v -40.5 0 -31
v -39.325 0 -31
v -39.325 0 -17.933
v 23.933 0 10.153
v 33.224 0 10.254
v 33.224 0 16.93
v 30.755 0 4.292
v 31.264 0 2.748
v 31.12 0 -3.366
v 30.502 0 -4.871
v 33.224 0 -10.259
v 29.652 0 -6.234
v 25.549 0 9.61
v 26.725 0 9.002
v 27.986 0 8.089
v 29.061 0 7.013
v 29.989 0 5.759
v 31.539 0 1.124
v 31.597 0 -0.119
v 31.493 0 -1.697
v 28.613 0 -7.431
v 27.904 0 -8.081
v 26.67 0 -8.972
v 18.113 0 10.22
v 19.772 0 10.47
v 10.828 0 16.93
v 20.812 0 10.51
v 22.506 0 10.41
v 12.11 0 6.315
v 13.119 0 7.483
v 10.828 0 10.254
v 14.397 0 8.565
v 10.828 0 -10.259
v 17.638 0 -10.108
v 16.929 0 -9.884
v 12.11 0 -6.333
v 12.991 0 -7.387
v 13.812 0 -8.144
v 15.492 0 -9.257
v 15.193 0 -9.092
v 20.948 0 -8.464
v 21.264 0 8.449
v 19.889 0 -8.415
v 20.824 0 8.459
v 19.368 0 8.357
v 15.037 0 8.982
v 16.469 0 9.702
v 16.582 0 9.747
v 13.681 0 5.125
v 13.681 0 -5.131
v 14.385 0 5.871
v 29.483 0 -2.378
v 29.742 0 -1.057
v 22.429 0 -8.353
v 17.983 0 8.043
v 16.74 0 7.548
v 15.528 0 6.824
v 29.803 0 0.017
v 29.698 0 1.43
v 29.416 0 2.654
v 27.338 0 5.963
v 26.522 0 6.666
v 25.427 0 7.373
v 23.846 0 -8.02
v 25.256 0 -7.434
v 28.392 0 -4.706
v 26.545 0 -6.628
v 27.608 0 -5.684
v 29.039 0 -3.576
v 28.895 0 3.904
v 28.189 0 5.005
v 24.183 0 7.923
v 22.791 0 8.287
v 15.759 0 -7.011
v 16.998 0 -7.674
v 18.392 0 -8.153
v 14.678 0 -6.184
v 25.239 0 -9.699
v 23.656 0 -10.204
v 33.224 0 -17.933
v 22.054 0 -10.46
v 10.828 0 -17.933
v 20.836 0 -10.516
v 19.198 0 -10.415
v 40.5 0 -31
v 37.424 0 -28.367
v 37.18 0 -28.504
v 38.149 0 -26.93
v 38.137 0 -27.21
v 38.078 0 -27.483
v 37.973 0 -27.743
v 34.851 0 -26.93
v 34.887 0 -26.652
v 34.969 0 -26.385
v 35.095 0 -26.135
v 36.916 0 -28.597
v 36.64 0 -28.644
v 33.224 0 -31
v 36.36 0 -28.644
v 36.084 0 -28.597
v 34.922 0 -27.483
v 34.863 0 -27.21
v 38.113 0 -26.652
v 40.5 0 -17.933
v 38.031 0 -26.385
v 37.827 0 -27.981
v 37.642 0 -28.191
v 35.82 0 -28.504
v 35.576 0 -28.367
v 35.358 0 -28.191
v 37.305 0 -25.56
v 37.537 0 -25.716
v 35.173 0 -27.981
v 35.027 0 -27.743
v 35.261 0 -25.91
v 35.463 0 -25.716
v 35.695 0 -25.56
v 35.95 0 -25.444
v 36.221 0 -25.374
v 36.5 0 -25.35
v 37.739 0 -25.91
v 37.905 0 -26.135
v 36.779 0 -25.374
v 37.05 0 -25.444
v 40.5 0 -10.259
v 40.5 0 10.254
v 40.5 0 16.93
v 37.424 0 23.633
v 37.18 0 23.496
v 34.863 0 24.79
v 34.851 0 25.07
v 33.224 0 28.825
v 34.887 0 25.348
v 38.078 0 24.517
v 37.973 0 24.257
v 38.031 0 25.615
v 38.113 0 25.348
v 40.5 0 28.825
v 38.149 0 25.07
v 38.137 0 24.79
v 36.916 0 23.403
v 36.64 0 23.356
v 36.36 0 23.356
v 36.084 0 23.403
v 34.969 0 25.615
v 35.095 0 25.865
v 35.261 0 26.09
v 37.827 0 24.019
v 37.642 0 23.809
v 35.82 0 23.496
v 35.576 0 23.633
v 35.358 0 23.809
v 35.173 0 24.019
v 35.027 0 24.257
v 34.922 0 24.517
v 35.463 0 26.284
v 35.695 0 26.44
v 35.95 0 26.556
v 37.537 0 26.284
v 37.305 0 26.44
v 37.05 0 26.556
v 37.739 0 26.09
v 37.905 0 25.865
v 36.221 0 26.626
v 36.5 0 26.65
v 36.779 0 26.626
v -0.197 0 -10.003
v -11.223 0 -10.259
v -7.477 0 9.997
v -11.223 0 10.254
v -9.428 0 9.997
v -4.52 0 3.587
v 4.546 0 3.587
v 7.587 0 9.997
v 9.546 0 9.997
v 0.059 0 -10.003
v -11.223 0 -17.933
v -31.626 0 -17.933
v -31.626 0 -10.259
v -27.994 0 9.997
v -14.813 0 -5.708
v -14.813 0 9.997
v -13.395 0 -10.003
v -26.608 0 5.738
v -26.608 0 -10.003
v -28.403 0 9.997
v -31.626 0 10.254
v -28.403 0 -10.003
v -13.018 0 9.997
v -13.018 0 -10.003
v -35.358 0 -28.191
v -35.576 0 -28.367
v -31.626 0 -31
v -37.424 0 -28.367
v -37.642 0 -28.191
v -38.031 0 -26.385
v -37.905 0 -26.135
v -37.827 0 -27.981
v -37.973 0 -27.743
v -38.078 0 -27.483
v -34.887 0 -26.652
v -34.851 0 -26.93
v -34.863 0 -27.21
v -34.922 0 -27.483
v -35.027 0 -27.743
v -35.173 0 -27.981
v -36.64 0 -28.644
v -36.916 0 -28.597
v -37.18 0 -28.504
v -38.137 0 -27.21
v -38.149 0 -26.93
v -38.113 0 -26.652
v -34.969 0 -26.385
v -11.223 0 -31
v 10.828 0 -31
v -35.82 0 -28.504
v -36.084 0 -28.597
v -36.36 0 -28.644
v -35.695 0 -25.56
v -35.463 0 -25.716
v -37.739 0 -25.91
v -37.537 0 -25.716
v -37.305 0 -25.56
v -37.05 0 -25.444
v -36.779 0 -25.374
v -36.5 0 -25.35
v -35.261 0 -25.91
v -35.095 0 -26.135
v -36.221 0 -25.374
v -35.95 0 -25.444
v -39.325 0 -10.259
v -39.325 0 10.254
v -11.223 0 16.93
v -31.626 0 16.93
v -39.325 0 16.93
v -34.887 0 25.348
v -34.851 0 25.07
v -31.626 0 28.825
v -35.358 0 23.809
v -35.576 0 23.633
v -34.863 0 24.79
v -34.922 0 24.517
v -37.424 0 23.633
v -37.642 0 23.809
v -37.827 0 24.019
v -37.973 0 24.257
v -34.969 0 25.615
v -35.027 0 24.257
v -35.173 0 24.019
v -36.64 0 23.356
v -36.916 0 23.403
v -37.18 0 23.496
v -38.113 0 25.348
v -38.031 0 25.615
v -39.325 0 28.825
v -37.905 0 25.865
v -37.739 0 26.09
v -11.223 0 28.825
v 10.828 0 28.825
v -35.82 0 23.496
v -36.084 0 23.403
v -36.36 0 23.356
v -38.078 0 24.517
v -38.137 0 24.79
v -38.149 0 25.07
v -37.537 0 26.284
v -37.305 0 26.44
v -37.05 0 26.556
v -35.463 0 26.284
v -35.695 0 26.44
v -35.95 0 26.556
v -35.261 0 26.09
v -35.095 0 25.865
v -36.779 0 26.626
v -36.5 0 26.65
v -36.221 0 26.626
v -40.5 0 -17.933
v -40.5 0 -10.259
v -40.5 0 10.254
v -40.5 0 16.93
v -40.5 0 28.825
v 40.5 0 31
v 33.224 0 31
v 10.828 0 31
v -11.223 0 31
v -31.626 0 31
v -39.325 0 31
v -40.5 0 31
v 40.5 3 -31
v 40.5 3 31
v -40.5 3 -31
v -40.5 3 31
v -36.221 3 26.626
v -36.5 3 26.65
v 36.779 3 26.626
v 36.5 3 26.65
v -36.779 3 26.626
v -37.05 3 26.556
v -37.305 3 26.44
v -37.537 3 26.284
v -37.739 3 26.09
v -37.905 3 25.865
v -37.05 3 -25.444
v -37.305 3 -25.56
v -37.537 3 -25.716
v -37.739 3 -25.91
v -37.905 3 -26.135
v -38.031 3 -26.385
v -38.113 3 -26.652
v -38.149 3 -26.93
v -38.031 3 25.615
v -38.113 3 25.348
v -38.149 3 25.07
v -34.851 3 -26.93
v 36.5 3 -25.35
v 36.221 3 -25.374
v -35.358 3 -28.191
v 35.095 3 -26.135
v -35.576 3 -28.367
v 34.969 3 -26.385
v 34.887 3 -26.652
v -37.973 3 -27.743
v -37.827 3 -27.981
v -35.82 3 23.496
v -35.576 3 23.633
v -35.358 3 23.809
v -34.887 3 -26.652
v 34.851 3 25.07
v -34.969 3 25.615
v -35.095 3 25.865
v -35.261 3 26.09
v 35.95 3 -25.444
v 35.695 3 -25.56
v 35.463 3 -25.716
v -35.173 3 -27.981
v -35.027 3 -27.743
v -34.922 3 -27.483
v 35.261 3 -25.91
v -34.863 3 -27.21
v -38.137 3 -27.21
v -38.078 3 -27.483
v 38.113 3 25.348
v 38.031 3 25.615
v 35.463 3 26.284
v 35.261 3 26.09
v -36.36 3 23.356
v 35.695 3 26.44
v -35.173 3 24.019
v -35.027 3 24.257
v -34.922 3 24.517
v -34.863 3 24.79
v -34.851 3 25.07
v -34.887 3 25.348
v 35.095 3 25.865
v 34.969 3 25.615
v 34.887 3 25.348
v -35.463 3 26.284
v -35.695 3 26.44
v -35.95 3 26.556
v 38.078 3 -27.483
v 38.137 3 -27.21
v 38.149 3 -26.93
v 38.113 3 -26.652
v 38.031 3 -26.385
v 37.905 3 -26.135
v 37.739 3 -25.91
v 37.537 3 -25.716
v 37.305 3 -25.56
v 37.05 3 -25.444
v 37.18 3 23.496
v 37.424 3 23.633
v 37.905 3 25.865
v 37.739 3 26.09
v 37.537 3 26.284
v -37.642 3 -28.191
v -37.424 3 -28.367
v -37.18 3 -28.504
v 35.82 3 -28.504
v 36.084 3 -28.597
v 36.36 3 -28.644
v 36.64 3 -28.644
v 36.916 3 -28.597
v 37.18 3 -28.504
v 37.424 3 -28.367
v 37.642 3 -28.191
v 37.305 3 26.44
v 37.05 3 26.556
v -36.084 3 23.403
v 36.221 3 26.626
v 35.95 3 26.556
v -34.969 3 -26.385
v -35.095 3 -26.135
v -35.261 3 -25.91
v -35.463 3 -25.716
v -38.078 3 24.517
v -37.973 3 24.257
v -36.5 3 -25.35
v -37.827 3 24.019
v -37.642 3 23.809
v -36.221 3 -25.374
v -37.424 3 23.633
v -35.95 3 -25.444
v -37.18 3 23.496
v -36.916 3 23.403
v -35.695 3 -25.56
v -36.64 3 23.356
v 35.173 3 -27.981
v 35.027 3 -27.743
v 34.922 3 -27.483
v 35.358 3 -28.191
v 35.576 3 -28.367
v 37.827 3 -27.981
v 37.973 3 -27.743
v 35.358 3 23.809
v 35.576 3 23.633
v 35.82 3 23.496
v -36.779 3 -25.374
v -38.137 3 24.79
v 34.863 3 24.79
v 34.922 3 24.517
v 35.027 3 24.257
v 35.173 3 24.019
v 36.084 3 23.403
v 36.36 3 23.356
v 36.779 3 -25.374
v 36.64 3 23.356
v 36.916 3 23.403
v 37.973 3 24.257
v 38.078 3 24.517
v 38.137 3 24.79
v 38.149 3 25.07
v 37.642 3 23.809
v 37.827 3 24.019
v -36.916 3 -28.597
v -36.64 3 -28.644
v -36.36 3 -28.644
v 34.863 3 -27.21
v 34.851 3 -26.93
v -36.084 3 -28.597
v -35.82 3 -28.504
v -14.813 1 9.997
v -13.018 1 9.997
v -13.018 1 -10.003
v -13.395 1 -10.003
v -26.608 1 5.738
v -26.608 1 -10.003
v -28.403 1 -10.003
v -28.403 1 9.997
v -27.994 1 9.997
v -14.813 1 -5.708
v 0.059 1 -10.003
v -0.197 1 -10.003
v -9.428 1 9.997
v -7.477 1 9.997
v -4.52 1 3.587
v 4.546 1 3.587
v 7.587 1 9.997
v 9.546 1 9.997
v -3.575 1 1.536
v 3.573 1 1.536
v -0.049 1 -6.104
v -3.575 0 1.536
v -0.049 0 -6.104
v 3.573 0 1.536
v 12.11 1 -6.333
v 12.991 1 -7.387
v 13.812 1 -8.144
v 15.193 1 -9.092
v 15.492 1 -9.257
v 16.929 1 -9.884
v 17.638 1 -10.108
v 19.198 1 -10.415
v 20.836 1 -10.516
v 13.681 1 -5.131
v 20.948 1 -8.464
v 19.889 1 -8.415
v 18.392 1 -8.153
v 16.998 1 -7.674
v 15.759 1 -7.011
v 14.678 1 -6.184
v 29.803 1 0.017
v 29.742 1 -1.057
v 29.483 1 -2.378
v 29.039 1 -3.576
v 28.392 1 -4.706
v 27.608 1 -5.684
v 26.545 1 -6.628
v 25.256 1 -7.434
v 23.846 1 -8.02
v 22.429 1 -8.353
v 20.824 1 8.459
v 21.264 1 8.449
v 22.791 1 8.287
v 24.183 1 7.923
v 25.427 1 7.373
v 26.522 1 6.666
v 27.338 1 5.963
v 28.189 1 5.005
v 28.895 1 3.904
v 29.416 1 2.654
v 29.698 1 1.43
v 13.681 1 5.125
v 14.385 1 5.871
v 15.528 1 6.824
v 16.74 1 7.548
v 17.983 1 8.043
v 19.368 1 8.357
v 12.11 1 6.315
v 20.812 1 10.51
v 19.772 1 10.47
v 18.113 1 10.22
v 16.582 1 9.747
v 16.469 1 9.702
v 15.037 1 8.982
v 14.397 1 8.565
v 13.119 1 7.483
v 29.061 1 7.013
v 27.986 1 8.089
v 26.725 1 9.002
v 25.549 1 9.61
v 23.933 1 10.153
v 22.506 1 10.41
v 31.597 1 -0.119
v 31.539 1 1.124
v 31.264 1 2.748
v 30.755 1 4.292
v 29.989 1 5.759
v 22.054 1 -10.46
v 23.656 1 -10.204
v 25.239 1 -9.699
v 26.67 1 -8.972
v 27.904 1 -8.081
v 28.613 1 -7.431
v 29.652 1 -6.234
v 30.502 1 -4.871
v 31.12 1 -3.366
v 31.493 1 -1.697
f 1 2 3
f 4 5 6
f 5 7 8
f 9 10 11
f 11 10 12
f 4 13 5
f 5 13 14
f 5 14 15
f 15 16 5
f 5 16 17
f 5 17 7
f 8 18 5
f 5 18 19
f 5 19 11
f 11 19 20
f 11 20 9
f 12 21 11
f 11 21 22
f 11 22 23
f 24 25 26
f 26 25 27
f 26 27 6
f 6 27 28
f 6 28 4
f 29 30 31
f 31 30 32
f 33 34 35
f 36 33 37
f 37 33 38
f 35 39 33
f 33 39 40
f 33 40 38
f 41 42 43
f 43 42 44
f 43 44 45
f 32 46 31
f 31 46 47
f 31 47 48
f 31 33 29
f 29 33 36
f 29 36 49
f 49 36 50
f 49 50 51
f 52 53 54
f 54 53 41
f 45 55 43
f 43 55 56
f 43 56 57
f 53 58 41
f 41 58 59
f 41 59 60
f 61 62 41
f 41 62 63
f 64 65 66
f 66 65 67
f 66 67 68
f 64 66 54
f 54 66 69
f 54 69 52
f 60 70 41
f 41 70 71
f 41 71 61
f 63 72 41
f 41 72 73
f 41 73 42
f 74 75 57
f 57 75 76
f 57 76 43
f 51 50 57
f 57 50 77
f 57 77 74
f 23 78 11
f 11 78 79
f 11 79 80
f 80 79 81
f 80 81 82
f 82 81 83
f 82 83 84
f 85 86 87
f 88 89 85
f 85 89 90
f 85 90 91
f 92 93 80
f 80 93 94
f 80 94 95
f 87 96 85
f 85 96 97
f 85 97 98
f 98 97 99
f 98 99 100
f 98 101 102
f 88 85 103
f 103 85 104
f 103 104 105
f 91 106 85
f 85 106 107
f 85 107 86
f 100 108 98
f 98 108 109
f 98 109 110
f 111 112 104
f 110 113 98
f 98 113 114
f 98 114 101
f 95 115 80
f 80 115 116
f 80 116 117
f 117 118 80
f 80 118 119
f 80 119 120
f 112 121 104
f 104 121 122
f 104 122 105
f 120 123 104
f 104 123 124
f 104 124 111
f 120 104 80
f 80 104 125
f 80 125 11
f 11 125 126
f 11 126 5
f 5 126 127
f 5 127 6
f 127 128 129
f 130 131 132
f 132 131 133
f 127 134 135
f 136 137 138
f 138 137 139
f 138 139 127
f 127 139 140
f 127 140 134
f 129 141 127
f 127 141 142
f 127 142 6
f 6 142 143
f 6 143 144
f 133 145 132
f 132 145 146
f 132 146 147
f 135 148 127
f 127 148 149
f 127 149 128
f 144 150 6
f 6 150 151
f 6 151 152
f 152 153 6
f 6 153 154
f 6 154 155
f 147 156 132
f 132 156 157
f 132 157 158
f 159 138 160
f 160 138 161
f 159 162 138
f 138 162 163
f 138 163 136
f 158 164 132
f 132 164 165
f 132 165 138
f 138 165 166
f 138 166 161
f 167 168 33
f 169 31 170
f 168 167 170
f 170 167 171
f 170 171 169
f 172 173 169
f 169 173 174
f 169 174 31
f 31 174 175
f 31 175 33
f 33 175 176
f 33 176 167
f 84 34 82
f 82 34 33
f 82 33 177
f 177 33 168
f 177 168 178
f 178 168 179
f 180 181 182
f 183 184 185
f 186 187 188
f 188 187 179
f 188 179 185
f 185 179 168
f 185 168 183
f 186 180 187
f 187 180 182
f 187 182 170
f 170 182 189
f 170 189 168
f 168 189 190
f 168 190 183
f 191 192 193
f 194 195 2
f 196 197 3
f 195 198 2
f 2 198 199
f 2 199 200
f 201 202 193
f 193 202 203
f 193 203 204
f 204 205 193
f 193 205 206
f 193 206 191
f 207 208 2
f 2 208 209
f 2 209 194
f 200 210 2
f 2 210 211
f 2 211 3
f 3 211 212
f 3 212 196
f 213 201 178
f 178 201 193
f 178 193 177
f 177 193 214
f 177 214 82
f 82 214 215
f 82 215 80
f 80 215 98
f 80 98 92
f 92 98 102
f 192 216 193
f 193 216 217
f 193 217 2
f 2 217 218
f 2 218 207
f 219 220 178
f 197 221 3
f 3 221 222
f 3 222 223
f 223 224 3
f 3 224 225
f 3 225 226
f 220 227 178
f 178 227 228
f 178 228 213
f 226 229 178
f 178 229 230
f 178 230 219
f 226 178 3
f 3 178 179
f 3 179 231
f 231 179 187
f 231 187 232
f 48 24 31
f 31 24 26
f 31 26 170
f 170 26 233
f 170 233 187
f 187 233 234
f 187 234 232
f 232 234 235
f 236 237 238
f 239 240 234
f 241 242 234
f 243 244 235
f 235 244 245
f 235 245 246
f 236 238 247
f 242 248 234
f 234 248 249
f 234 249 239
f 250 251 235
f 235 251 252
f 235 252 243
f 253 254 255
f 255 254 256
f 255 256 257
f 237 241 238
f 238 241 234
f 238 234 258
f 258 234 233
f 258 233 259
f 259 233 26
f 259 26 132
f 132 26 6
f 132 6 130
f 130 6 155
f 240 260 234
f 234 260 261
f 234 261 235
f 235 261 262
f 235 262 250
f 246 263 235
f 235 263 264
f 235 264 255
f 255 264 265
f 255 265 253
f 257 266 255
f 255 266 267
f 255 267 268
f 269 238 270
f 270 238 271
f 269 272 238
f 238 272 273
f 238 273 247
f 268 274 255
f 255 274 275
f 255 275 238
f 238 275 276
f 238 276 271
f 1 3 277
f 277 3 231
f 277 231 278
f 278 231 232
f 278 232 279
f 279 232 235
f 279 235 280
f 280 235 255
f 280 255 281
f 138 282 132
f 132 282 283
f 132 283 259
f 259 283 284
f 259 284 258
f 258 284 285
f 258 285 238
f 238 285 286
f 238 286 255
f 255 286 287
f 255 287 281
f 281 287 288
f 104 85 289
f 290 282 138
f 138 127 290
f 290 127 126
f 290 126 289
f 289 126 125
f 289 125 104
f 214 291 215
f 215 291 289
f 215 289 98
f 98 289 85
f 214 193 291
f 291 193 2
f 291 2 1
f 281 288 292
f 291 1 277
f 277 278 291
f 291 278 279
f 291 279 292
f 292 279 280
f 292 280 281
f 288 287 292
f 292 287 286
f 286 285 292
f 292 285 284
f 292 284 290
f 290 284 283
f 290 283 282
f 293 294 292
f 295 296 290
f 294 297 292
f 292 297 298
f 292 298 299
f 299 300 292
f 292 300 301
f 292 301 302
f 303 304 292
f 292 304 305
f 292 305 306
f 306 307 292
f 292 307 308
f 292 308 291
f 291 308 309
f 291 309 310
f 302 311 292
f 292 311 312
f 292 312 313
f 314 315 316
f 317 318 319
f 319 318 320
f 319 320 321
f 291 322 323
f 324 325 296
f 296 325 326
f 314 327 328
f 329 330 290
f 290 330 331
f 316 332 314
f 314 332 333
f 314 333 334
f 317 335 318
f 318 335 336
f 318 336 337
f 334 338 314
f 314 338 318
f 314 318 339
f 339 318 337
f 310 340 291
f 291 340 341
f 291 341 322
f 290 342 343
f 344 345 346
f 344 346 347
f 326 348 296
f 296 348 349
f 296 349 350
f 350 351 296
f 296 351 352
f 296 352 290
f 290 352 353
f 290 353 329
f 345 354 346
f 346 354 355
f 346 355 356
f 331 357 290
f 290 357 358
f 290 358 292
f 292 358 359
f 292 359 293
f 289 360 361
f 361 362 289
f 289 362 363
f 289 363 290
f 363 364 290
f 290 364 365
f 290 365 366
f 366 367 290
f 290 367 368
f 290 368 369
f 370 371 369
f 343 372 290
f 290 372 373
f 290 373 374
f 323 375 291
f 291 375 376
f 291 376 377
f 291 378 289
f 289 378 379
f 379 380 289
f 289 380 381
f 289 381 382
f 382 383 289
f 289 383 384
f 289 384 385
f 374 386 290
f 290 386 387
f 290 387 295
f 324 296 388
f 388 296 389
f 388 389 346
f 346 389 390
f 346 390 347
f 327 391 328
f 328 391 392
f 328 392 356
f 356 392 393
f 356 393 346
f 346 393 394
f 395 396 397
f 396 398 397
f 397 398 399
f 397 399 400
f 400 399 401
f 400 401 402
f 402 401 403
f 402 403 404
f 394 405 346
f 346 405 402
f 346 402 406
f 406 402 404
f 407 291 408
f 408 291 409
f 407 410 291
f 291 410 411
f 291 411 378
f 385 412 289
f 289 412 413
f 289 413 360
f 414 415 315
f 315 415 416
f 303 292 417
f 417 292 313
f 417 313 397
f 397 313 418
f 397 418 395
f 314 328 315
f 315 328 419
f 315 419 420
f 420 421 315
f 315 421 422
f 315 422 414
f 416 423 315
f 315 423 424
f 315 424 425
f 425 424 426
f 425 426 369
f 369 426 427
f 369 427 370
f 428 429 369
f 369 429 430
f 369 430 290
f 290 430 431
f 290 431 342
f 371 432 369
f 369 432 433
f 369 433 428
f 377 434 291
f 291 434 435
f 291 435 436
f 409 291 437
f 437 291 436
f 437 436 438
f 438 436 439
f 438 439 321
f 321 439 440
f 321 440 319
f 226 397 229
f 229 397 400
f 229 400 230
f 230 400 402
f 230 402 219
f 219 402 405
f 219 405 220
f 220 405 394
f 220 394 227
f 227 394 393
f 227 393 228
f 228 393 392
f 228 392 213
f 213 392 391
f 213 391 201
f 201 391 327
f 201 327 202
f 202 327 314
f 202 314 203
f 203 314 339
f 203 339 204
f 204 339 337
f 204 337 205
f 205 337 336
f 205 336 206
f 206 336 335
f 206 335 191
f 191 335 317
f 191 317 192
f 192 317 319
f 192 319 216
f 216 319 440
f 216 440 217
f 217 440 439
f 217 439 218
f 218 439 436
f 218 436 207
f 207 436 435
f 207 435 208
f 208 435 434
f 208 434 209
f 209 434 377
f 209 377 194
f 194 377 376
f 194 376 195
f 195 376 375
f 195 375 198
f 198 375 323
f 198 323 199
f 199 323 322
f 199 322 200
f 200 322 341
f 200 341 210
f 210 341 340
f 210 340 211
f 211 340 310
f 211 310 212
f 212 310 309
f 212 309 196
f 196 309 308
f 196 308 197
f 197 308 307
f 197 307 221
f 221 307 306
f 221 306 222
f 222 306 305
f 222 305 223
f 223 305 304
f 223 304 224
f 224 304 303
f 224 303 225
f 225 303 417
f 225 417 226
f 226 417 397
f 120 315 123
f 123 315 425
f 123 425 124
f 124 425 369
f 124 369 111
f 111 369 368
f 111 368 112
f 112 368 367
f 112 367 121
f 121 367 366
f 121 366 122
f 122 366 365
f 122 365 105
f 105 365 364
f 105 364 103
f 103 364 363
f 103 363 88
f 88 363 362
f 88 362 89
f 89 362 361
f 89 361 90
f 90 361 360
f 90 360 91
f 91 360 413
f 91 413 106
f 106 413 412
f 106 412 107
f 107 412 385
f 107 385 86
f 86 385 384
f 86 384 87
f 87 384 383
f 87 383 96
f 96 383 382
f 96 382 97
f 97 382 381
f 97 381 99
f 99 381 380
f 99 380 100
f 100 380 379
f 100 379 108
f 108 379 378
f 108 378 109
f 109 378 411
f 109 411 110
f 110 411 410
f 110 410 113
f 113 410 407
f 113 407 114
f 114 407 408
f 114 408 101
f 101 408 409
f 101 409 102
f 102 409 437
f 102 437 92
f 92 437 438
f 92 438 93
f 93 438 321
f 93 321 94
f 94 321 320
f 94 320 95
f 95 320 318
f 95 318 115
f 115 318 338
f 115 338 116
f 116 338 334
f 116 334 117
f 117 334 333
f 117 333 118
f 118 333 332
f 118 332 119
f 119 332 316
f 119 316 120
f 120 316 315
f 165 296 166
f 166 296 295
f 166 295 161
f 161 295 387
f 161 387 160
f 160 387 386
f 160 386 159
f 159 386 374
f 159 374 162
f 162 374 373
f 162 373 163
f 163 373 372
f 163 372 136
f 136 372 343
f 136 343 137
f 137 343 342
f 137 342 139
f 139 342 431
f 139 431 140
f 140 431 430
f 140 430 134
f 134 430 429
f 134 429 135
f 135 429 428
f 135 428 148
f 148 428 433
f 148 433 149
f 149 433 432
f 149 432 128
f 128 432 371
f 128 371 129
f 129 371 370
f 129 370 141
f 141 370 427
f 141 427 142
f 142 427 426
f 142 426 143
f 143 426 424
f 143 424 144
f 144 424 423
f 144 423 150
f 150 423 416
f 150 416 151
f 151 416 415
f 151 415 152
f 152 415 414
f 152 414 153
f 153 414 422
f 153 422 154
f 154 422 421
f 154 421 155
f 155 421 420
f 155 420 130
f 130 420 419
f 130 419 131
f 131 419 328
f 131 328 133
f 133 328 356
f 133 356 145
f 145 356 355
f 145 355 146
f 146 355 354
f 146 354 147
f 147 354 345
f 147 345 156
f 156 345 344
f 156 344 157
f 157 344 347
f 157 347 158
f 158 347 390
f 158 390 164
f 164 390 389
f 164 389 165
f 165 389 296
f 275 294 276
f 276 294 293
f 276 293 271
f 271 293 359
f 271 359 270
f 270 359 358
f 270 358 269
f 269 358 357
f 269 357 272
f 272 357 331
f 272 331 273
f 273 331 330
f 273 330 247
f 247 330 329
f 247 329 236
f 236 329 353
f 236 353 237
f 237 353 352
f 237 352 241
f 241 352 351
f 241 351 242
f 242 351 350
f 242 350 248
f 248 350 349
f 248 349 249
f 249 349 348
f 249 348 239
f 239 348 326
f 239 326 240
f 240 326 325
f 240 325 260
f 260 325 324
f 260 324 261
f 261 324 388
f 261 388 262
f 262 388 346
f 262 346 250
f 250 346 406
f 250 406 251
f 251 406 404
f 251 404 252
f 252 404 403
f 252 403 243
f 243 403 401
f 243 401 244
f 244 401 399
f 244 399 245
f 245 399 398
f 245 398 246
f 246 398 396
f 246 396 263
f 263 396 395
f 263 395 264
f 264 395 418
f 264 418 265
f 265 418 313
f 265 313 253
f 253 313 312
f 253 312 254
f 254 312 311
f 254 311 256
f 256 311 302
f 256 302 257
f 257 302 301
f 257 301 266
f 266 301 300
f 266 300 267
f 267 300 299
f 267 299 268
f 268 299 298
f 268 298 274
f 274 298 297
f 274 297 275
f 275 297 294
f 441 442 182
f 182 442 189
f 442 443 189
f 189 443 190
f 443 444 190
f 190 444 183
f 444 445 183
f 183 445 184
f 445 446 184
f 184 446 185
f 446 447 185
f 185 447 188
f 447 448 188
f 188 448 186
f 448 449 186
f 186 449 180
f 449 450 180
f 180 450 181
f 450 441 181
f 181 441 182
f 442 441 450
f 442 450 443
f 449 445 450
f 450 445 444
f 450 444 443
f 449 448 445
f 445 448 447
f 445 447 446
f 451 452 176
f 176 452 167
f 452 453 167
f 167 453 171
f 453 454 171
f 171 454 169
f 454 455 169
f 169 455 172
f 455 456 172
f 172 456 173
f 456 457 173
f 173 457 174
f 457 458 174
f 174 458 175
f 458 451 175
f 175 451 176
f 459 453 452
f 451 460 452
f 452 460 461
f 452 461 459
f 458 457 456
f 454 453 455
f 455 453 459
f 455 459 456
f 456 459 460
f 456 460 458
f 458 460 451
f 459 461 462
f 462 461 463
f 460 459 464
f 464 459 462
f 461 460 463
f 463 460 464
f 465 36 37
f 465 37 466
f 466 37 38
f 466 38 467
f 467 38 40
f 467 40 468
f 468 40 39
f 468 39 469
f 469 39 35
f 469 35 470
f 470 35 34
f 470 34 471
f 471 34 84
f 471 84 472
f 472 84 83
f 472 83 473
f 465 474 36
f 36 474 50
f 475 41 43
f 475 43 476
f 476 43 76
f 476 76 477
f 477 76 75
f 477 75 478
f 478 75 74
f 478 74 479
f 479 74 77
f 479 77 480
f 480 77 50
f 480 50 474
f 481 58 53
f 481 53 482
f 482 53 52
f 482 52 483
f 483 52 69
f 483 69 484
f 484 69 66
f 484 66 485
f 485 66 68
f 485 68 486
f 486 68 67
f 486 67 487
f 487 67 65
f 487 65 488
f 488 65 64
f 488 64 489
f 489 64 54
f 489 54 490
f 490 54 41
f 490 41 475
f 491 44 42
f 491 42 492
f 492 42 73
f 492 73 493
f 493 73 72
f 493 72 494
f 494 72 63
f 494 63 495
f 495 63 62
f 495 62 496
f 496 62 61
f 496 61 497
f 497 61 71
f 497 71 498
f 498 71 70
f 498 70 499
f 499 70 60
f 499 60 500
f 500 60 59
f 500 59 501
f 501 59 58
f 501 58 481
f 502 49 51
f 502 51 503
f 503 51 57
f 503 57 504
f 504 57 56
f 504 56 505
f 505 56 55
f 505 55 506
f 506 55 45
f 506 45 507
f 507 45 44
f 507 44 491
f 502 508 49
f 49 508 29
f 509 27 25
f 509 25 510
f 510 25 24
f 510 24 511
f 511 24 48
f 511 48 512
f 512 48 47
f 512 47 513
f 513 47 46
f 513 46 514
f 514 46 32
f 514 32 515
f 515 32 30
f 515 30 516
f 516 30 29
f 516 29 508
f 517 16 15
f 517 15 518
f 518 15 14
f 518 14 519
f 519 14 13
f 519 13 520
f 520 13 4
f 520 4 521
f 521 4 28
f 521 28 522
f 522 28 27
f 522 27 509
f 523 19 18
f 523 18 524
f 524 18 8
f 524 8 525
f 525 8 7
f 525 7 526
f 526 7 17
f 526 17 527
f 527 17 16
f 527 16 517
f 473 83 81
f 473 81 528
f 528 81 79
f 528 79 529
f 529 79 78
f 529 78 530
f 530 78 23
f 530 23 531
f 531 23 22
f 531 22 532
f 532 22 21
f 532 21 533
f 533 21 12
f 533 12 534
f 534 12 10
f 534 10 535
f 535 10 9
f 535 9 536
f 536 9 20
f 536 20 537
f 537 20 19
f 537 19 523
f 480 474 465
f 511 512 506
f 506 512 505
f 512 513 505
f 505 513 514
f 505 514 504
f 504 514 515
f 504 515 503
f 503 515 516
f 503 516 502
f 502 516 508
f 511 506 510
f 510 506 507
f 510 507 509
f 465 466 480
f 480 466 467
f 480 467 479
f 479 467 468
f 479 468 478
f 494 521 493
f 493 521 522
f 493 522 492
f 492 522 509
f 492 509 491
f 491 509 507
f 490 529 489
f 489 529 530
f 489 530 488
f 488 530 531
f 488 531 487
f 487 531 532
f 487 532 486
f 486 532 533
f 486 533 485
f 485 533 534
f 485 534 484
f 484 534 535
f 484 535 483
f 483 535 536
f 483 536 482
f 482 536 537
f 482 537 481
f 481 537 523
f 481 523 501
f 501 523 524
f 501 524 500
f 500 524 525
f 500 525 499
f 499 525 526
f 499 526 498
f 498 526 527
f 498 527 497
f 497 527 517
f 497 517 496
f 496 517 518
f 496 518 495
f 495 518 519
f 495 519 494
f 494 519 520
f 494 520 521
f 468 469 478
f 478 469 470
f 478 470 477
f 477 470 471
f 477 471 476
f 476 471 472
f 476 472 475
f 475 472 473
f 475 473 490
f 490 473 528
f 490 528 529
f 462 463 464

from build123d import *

# Parameters (mm, degrees)
SKETCH1_W      = 81
SKETCH1_H      = 62
EXTRUDE1_DEPTH = 3
SKETCH2_R      = 1.65
EXTRUDE2_DEPTH = 3
EXTRUDE3_START = -1
EXTRUDE3_DEPTH = 1


# Read off the part's stored shape, not the designer's step: Extrude3
with BuildPart() as part:
    # Sketch1 → Extrude1 (new body)
    with BuildSketch(Plane(origin=(0, 0, 0), x_dir=(1, 0, 0), z_dir=(0, 1, 0))):
        Rectangle(SKETCH1_W, SKETCH1_H)
    extrude(amount=EXTRUDE1_DEPTH)

    # Sketch2 → Extrude2 (cut)
    with BuildSketch(Plane(origin=(0, 3, 0), x_dir=(1, 0, 0), z_dir=(0, 1, 0))):
        with Locations(Location((-36.5, 27, 0), (0, 0, 270))):
            Circle(SKETCH2_R)
        with Locations(Location((36.5, 27, 0), (0, 0, 270))):
            Circle(SKETCH2_R)
        with Locations(Location((36.5, -25, 0), (0, 0, 270))):
            Circle(SKETCH2_R)
        with Locations(Location((-36.5, -25, 0), (0, 0, 270))):
            Circle(SKETCH2_R)
    extrude(amount=-EXTRUDE2_DEPTH, mode=Mode.SUBTRACT)

    # Extrude3 outline → Extrude3 (cut)
    # profile 1 of 3: a face of its own
    with BuildSketch(Plane(origin=(0, 0, 0), x_dir=(-1, 0, 0), z_dir=(0, -1, 0)).offset(EXTRUDE3_START)):
        with BuildLine():
            add(Edge.make_bspline(
                [(-20.83620317, 10.515533954), (-20.606406188, 10.512778879), (-20.151546203, 10.507325485), (-19.478673903, 10.45414753), (-18.823574892, 10.365498351), (-18.185797852, 10.244835095), (-17.562240045, 10.095078972), (-16.95766724, 9.899991553), (-16.368531887, 9.67692566), (-15.798549554, 9.420020141), (-15.250454982, 9.131638761), (-14.724418876, 8.814978055), (-14.224619684, 8.470430595), (-13.74754055, 8.100926736), (-13.301162201, 7.698649254), (-12.872810895, 7.274662991), (-12.477033305, 6.816755425), (-12.232729334, 6.494441517), (-12.110241632, 6.332841646)],
                knots=[0, 0, 0, 0, 0.068547537, 0.135682946, 0.20121499, 0.265682235, 0.329266835, 0.392395428, 0.455069762, 0.51712685, 0.578790035, 0.639739863, 0.700191504, 0.759806243, 0.819628319, 0.879354791, 0.939511608, 1, 1, 1, 1], degree=3))
            add(Edge.make_bspline(
                [(-31.597421119, 0.118899339), (-31.588534298, 0.478644788), (-31.571050034, 1.186421499), (-31.422502632, 2.225129804), (-31.183538082, 3.220280654), (-30.84412729, 4.170016338), (-30.413810997, 5.079332225), (-29.882230346, 5.941281967), (-29.255560962, 6.761377965), (-28.538717718, 7.527176544), (-27.752618659, 8.227401416), (-26.910796866, 8.843436866), (-26.014900026, 9.356108386), (-25.074798016, 9.784657885), (-24.083451264, 10.114054818), (-23.042974869, 10.344644456), (-21.955323928, 10.488170835), (-21.213252924, 10.50631488), (-20.83620317, 10.515533954)],
                knots=[0, 0, 0, 0, 0.064557846, 0.127013532, 0.18795481, 0.248013913, 0.307747682, 0.368234515, 0.429469844, 0.492743437, 0.556257769, 0.618216786, 0.679655476, 0.741245546, 0.803415265, 0.866815462, 0.932328312, 1, 1, 1, 1], degree=3))
            add(Edge.make_bspline(
                [(-29.061363426, -7.012510918), (-29.263852818, -6.763704124), (-29.666386971, -6.26909435), (-30.181390877, -5.467460171), (-30.62223405, -4.630498978), (-30.978667883, -3.753813671), (-31.257312072, -2.839371458), (-31.450347473, -1.886711375), (-31.575785213, -0.896723134), (-31.59012972, -0.223370056), (-31.597421119, 0.118899339)],
                knots=[0, 0, 0, 0, 0.12432851, 0.247156016, 0.368779749, 0.490733862, 0.613613772, 0.738957576, 0.867310575, 1, 1, 1, 1], degree=3))
            add(Edge.make_bspline(
                [(-20.812164709, -10.510107071), (-21.027271377, -10.508609971), (-21.452618178, -10.505649641), (-22.080611044, -10.457694398), (-22.691980077, -10.39226733), (-23.28497794, -10.293752296), (-23.862840654, -10.177498924), (-24.420329708, -10.021663172), (-24.96293091, -9.847096505), (-25.488464286, -9.641925153), (-25.997376856, -9.41040411), (-26.488027207, -9.148738059), (-26.960189678, -8.859127403), (-27.418506368, -8.547955915), (-27.856206846, -8.205228476), (-28.277084134, -7.83570485), (-28.683498284, -7.440630503), (-28.934942198, -7.155745627), (-29.061363426, -7.012510918)],
                knots=[0, 0, 0, 0, 0.069662801, 0.137749562, 0.203916744, 0.268779862, 0.332413706, 0.39475354, 0.456180032, 0.516995649, 0.577395938, 0.637198344, 0.696999184, 0.756756194, 0.816553905, 0.876947997, 0.938131788, 1, 1, 1, 1], degree=3))
            add(Edge.make_bspline(
                [(-12.110241632, -6.315395533), (-12.236630831, -6.478472401), (-12.488803832, -6.803845008), (-12.897135358, -7.262540493), (-13.327291343, -7.693992124), (-13.782466829, -8.094721388), (-14.257425638, -8.472746906), (-14.760695994, -8.817328799), (-15.285661894, -9.133276709), (-15.830544631, -9.422573421), (-16.394765275, -9.679243404), (-16.977647761, -9.89897922), (-17.576679621, -10.088264303), (-18.19188824, -10.243989655), (-18.824549708, -10.365538706), (-19.472380989, -10.446793991), (-20.136780275, -10.502462073), (-20.585016968, -10.507535878), (-20.812164709, -10.510107071)],
                knots=[0, 0, 0, 0, 0.061674239, 0.123053062, 0.183475001, 0.243726501, 0.304278917, 0.364862921, 0.425946204, 0.48739123, 0.549220384, 0.611143589, 0.67352853, 0.736961457, 0.800785283, 0.866012596, 0.932100748, 1, 1, 1, 1], degree=3))
            Line((-12.110241632, -6.315395533), (-13.680754452, -5.125491687))
            add(Edge.make_bspline(
                [(-20.824183939, -8.45882502), (-20.475025716, -8.44917485), (-19.787798808, -8.430181007), (-18.779981515, -8.269271012), (-17.815205711, -8.008368624), (-16.893419503, -7.64323764), (-16.017221524, -7.168578852), (-15.185240608, -6.593162409), (-14.396774491, -5.911514794), (-13.922652878, -5.391039775), (-13.680754452, -5.125491687)],
                knots=[0, 0, 0, 0, 0.12851519, 0.252948636, 0.374754734, 0.495939754, 0.617180641, 0.740909469, 0.867811148, 1, 1, 1, 1], degree=3))
            add(Edge.make_bspline(
                [(-29.802549324, -0.01731861), (-29.795338929, -0.312926152), (-29.781182276, -0.893312351), (-29.655191796, -1.743430126), (-29.463734131, -2.557833976), (-29.176787978, -3.331433075), (-28.822964831, -4.07376655), (-28.375875623, -4.772274283), (-27.858066838, -5.437511795), (-27.262213012, -6.053757211), (-26.608465493, -6.616692784), (-25.907048855, -7.112410392), (-25.159710068, -7.525638292), (-24.374700752, -7.869500844), (-23.545980101, -8.133825002), (-22.675038373, -8.319905708), (-21.763769829, -8.441289596), (-21.141087544, -8.452910671), (-20.824183939, -8.45882502)],
                knots=[0, 0, 0, 0, 0.064323217, 0.126290104, 0.186726469, 0.246146432, 0.305575643, 0.365429386, 0.426326309, 0.488839906, 0.551724972, 0.613918596, 0.675483766, 0.737333897, 0.800229044, 0.864502298, 0.931040739, 1, 1, 1, 1], degree=3))
            add(Edge.make_bspline(
                [(-20.948382657, 8.464251903), (-21.148858653, 8.461943546), (-21.54795004, 8.457348255), (-22.140227031, 8.396724682), (-22.721444466, 8.311517768), (-23.291224273, 8.185087349), (-23.848841179, 8.025243812), (-24.397940619, 7.834241447), (-24.930572618, 7.597928076), (-25.454105408, 7.336738019), (-25.955700899, 7.041724049), (-26.430301172, 6.719933467), (-26.876175275, 6.374967202), (-27.293675916, 6.005532308), (-27.683229906, 5.613292534), (-28.042014539, 5.194067725), (-28.368788312, 4.749198162), (-28.670028455, 4.284550119), (-28.939815503, 3.801477024), (-29.165700528, 3.298190907), (-29.365729798, 2.783310318), (-29.524011185, 2.25101797), (-29.649294138, 1.705059308), (-29.735737928, 1.143969092), (-29.795672049, 0.568919494), (-29.800244489, 0.179151993), (-29.802549324, -0.01731861)],
                knots=[0, 0, 0, 0, 0.043954909, 0.087501875, 0.130462627, 0.172752021, 0.215403067, 0.25764983, 0.300152749, 0.34312149, 0.385925163, 0.427685727, 0.46881795, 0.5094918, 0.549883031, 0.589980023, 0.63040523, 0.670868626, 0.711383944, 0.751627258, 0.791775577, 0.832458919, 0.873319045, 0.914542956, 0.956923558, 1, 1, 1, 1], degree=3))
            add(Edge.make_bspline(
                [(-13.680754452, 5.13091857), (-13.7927881, 5.264438397), (-14.015344939, 5.529677916), (-14.373397525, 5.902132455), (-14.74654977, 6.251076806), (-15.134659034, 6.578173261), (-15.544711145, 6.871983351), (-15.966772852, 7.147818225), (-16.407904539, 7.395062442), (-17.017914451, 7.694850934), (-17.815902156, 8.007686106), (-18.820444093, 8.269990285), (-19.869078942, 8.436968431), (-20.584493797, 8.45505324), (-20.948382657, 8.464251903)],
                knots=[0, 0, 0, 0, 0.063163259, 0.125474941, 0.18712122, 0.248294346, 0.309294856, 0.369850066, 0.430973376, 0.49245599, 0.616147966, 0.740843698, 0.868182649, 1, 1, 1, 1], degree=3))
            Line((-13.680754452, 5.13091857), (-12.110241632, 6.332841646))
        make_face()
    # profile 2 of 3: a face of its own
    with BuildSketch(Plane(origin=(0, 0, 0), x_dir=(-1, 0, 0), z_dir=(0, -1, 0)).offset(EXTRUDE3_START)):
        Polygon((13.017963497, -9.997286559), (14.812835291, -9.997286559), (14.812835291, 5.707841646), (27.993925035, -9.997286559), (28.402578881, -9.997286559), (28.402578881, 10.002713441), (26.607707086, 10.002713441), (26.607707086, -5.738472456), (13.394566061, 10.002713441), (13.017963497, 10.002713441), align=None)
    # profile 3 of 3: a face of its own
    with BuildSketch(Plane(origin=(0, 0, 0), x_dir=(-1, 0, 0), z_dir=(0, -1, 0)).offset(EXTRUDE3_START)):
        Polygon((7.477098112, -9.997286559), (9.428219907, -9.997286559), (0.197450676, 10.002713441), (-0.05895958, 10.002713441), (-9.546139067, -9.997286559), (-7.587004452, -9.997286559), (-4.546139067, -3.587030148), (4.520367343, -3.587030148), align=None)
        Polygon((0.049213497, 6.104476262), (3.574854522, -1.535748097), (-3.572581375, -1.535748097), align=None, mode=Mode.SUBTRACT)
    extrude(amount=EXTRUDE3_DEPTH, mode=Mode.SUBTRACT)


solid = part.part
